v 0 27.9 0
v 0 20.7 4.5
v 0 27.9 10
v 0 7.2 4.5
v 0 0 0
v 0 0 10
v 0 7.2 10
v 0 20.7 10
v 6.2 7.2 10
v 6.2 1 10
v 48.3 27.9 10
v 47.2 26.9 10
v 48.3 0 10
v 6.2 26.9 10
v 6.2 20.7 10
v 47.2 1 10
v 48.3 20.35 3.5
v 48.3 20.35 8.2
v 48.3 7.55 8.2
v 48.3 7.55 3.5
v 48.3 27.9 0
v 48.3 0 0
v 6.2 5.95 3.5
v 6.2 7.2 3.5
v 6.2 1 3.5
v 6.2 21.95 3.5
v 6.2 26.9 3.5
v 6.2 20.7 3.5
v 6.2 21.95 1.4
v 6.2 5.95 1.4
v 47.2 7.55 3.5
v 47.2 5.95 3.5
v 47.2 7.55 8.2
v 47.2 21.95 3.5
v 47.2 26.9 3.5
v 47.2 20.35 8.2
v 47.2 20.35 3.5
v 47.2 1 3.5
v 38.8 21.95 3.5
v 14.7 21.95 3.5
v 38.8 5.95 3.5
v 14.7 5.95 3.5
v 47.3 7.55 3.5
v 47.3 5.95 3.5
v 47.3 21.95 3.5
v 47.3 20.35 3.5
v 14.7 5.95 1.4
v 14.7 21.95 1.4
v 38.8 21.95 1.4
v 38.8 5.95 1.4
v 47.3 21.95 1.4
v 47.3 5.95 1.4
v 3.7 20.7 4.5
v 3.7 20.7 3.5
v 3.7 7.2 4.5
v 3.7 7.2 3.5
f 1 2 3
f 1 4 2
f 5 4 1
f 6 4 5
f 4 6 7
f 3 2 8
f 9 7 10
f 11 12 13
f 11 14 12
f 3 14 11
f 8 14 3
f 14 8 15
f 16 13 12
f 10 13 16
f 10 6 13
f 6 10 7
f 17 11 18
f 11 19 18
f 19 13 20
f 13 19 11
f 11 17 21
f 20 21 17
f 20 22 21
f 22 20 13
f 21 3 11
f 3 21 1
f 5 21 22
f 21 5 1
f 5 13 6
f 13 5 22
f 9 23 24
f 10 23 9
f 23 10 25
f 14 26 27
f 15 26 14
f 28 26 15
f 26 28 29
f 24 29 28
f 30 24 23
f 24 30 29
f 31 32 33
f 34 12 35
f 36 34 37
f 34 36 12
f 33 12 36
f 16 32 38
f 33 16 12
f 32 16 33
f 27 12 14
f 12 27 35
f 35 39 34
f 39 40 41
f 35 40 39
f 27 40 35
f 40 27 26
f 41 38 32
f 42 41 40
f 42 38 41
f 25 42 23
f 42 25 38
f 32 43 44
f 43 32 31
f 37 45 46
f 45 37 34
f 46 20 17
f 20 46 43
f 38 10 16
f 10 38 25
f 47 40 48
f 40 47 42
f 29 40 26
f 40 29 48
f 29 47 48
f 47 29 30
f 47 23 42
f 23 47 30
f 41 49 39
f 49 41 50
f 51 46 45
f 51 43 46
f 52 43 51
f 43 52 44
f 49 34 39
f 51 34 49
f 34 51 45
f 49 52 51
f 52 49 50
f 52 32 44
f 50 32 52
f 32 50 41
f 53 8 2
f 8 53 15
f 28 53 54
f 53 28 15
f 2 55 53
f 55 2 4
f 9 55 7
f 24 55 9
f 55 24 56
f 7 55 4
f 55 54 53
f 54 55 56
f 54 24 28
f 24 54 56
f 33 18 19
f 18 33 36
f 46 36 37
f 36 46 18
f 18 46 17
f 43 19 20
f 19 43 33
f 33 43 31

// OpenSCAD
bodenplatte = [48.3,27.9,10];
bodenplatte2 = [41,25.9,7];
USBPort = [5.2,13.5,5.6];
USBPlug = [5,12.8,4.7];
ausschnitt = [8.5,16,2.1];
ausschnitt_2 = [2.5,13.5,7.4];
mid = 27.9/2;
bodenlength = 27.9;

difference(){
    difference(){
       cube(bodenplatte, false);
       color([1,0,0]){ translate([6.2,1,3.5]) cube(bodenplatte2, false); }
    }
    translate([6.2,mid-8,3.5-2.1]) cube(ausschnitt,false);
    translate([7.8+31,mid-8,3.5-2.1]) cube(ausschnitt,false);
    color([0,0,1]) {translate([0,(bodenlength-13.5)/2,4.5]) cube(USBPort,false);}
    color([0,1,0]) {translate([3.7,(bodenlength-13.5)/2,3.5]) cube(ausschnitt_2,false);}
    color([0,0,1]) {translate([45.8,(bodenlength-12.8)/2,3.5]) cube(USBPlug,false);}

}
    

   
